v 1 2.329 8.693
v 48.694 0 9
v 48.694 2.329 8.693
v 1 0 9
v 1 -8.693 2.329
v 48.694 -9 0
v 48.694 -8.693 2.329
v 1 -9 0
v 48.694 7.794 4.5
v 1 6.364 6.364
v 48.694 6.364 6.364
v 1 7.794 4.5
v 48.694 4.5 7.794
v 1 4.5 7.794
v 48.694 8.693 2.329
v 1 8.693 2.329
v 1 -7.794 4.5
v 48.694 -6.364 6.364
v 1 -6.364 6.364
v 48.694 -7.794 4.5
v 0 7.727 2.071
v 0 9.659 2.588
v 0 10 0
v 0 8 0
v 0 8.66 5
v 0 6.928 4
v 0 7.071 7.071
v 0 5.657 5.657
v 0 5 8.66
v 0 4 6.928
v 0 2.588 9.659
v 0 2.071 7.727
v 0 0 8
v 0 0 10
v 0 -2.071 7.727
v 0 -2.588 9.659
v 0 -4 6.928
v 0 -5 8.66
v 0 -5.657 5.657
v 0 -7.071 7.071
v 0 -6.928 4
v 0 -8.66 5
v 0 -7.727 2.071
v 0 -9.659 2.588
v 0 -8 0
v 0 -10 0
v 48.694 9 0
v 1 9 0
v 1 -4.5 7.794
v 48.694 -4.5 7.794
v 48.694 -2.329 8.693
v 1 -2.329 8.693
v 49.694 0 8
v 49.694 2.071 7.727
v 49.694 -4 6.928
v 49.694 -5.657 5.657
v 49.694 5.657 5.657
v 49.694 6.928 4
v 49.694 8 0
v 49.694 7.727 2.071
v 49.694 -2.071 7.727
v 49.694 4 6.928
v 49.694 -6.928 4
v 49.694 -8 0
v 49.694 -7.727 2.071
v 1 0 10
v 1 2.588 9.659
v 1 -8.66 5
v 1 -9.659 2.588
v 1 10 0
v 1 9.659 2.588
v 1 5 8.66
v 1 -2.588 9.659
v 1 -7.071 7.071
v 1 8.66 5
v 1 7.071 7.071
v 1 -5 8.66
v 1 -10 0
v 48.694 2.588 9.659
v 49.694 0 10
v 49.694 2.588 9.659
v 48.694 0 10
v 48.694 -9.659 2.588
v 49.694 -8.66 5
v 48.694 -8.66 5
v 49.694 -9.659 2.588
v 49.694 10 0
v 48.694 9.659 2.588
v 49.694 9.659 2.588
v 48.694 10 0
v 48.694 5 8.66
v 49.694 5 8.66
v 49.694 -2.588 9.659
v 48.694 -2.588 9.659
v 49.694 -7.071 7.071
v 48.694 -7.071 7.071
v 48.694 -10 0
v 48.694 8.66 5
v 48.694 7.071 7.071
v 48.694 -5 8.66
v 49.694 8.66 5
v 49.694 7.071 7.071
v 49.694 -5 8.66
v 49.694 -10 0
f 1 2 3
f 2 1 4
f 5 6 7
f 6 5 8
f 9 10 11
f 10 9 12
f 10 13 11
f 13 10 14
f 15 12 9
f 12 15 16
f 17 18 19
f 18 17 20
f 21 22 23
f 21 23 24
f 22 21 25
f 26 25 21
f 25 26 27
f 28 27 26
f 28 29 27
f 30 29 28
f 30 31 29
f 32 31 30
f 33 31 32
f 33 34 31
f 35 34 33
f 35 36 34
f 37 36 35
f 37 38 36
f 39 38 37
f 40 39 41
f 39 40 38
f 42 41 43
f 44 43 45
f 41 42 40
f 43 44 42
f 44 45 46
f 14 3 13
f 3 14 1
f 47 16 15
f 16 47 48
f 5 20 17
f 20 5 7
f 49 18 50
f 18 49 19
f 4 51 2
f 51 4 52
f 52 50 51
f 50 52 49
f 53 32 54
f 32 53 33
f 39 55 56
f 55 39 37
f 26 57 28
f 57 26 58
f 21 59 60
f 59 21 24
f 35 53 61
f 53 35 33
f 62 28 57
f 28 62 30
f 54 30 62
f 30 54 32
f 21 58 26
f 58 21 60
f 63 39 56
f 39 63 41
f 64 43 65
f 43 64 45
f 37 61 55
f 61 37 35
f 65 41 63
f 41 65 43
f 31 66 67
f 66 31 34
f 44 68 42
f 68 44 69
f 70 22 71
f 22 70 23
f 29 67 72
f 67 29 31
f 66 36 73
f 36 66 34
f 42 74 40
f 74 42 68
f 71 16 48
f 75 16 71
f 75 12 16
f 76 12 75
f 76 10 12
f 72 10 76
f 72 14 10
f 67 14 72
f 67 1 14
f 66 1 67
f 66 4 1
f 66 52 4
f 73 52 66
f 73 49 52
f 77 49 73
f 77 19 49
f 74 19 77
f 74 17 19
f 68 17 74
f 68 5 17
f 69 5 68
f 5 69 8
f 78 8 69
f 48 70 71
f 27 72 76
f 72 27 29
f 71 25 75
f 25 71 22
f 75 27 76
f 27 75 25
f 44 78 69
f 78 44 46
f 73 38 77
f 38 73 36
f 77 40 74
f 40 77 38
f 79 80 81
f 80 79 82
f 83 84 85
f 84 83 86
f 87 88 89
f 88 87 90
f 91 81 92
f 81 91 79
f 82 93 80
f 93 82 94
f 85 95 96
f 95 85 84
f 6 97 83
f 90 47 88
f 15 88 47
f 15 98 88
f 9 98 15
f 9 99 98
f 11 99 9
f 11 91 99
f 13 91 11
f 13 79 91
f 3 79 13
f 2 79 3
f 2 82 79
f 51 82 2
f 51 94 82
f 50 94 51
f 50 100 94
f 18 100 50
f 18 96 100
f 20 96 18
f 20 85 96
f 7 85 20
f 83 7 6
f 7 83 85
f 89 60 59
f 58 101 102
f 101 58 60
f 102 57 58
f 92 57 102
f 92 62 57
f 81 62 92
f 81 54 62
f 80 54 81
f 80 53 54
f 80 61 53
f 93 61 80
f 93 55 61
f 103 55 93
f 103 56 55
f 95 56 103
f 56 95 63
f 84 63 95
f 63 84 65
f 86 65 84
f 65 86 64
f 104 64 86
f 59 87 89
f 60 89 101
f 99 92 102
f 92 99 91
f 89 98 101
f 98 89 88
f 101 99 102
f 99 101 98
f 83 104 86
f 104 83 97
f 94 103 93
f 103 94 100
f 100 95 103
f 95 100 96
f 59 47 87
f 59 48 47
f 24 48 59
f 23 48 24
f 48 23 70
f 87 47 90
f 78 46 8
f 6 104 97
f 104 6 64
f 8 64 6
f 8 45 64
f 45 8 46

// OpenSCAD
// file: ../build_environments.scad
// build_environments.scad: modules to build level sections
//

module pool(diameter=10.0, wall_height=2.0, step_width=3.0, connections=[])
{
    difference() {
        union() {
        difference() {
            cylinder(h=0.5,r1=diameter+step_width,r2=diameter+step_width,$fn=48);
            translate([0,0,-0.1])
                cylinder(h=0.7,r1=diameter,r2=diameter,$fn=48);
        }
        difference() {
            cylinder(h=wall_height,r1=diameter+step_width+1.0,r2=diameter+step_width+1.0,$fn=48);
            translate([0,0,-0.1])
                cylinder(h=wall_height+0.2,r1=diameter+step_width,r2=diameter+step_width,$fn=48);
        }
        }
    
        for (c = connections)
        {
            rotate([0,90,0]) {
                angle = atan2(c[1],c[0]);
                rotate([-angle,0,0]) {
                    cylinder(h=diameter+5.0,r1=c[2],r2=c[2],$fn=48);
                }
            }
        }
    }
}

module straight(length=10.0, width=2.0, dy1=0.0, dy2=0.0, dz=0.0)
{
    dims = [0, 0, 0, 0, 0, (dz/length)];
    matrix = [
        [ 1, dims[0], dims[1], 0 ],
        [ dims[2], 1, dims[4], 0 ],
        [ dims[5], dims[3], 1, 0 ],
        [ 0, 0, 0, 1 ]
    ];
    multmatrix(matrix)
    difference() {
        translate([dy1,0,0])
        union() {
            rotate([0,90,0]) {
                difference() {
                    cylinder(h=(length-dy1-dy2),r1=width+1.0,r2=width+1.0,$fn=24);
                    translate([0,0,-0.1])
                        cylinder(h=(length-dy1-dy2+0.2),r1=width,r2=width,$fn=24);
                }
                difference() {
                    cylinder(h=1.0,r1=width+2.0,r2=width+2.0,$fn=24);
                    translate([0,0,-0.1])
                        cylinder(h=1.2,r1=width,r2=width,$fn=24);
                }
                translate([0,0,(length-dy1-dy2)-1.0]) {
                    difference() {
                        cylinder(h=1.0,r1=width+2.0,r2=width+2.0,$fn=24);
                        translate([0,0,-0.1])
                            cylinder(h=1.2,r1=width,r2=width,$fn=24);
                    }
                }
            }
        }
        translate([0,0,-(2*width+4.0)/2])
            cube([3*length,3*length,2*width+4.0],center=true);
    }
}

module curve(p0=[0,0], center=[0,0], dir=1, angle=0.0, width=2.0)
{
    radius = sqrt((p0[0]-center[0])*(p0[0]-center[0]) + (p0[1]-center[1])*(p0[1]-center[1]));
    if (dir == 0) {
        difference() {
            rotate([0,0,-90])
            difference() {
                rotate_extrude(angle = angle, convexity = 10, $fn=32)
                    translate([radius, 0, 0])
                        circle(r = width+1.0,$fn=24);
                rotate([0,0,-1.0])
                    rotate_extrude(angle = angle+2.0, convexity = 10, $fn=32)
                        translate([radius, 0, 0])
                            circle(r = width,$fn=24);
            }
            translate([0,0,-(2*width+4.0)/2])
                cube([5*radius,5*radius,2*width+4.0],center=true);
        }
    }
    else {
        difference() {
            rotate([0,0,90])
            difference() {
                rotate_extrude(angle = -angle, convexity = 10, $fn=32)
                    translate([radius, 0, 0])
                        circle(r = width+1.0,$fn=24);
                rotate([0,0,1.0])
                    rotate_extrude(angle = -angle-2.0, convexity = 10, $fn=32)
                        translate([radius, 0, 0])
                            circle(r = width,$fn=24);
            }
            translate([0,0,-(2*width+4.0)/2])
                cube([5*radius,5*radius,2*width+4.0],center=true);
        }
    }

}

// test pool
//pool(diameter=12.0000, wall_height=3.0000, step_width=3.0000, connections=[[0.0000,-26.0000,2.0000], [23.6074,0.0000,2.0000]]);

// test straight, slope
//straight(length=26.0000, width=2.0000, dy1=11.8322, dy2=6.7082, dz=0.0000);
//straight(length=29.1549, width=12.0000, dy1=0.0000, dy2=0.0000, dz=-15.0000);

// test curve
//curve(p0=[23.6074, 0.0000], center=[23.6074, 5.0000], dir=0, angle=60.1011, width=2.0000);
//curve(p0=[33.6426, 12.4219], center=[37.9771, 9.9295], dir=1, angle=120.4627, width=2.0000);
// main file
use <../build_environments.scad>;
straight(length=49.6942, width=8.0000, dy1=0.0000, dy2=0.0000, dz=0.0000);
